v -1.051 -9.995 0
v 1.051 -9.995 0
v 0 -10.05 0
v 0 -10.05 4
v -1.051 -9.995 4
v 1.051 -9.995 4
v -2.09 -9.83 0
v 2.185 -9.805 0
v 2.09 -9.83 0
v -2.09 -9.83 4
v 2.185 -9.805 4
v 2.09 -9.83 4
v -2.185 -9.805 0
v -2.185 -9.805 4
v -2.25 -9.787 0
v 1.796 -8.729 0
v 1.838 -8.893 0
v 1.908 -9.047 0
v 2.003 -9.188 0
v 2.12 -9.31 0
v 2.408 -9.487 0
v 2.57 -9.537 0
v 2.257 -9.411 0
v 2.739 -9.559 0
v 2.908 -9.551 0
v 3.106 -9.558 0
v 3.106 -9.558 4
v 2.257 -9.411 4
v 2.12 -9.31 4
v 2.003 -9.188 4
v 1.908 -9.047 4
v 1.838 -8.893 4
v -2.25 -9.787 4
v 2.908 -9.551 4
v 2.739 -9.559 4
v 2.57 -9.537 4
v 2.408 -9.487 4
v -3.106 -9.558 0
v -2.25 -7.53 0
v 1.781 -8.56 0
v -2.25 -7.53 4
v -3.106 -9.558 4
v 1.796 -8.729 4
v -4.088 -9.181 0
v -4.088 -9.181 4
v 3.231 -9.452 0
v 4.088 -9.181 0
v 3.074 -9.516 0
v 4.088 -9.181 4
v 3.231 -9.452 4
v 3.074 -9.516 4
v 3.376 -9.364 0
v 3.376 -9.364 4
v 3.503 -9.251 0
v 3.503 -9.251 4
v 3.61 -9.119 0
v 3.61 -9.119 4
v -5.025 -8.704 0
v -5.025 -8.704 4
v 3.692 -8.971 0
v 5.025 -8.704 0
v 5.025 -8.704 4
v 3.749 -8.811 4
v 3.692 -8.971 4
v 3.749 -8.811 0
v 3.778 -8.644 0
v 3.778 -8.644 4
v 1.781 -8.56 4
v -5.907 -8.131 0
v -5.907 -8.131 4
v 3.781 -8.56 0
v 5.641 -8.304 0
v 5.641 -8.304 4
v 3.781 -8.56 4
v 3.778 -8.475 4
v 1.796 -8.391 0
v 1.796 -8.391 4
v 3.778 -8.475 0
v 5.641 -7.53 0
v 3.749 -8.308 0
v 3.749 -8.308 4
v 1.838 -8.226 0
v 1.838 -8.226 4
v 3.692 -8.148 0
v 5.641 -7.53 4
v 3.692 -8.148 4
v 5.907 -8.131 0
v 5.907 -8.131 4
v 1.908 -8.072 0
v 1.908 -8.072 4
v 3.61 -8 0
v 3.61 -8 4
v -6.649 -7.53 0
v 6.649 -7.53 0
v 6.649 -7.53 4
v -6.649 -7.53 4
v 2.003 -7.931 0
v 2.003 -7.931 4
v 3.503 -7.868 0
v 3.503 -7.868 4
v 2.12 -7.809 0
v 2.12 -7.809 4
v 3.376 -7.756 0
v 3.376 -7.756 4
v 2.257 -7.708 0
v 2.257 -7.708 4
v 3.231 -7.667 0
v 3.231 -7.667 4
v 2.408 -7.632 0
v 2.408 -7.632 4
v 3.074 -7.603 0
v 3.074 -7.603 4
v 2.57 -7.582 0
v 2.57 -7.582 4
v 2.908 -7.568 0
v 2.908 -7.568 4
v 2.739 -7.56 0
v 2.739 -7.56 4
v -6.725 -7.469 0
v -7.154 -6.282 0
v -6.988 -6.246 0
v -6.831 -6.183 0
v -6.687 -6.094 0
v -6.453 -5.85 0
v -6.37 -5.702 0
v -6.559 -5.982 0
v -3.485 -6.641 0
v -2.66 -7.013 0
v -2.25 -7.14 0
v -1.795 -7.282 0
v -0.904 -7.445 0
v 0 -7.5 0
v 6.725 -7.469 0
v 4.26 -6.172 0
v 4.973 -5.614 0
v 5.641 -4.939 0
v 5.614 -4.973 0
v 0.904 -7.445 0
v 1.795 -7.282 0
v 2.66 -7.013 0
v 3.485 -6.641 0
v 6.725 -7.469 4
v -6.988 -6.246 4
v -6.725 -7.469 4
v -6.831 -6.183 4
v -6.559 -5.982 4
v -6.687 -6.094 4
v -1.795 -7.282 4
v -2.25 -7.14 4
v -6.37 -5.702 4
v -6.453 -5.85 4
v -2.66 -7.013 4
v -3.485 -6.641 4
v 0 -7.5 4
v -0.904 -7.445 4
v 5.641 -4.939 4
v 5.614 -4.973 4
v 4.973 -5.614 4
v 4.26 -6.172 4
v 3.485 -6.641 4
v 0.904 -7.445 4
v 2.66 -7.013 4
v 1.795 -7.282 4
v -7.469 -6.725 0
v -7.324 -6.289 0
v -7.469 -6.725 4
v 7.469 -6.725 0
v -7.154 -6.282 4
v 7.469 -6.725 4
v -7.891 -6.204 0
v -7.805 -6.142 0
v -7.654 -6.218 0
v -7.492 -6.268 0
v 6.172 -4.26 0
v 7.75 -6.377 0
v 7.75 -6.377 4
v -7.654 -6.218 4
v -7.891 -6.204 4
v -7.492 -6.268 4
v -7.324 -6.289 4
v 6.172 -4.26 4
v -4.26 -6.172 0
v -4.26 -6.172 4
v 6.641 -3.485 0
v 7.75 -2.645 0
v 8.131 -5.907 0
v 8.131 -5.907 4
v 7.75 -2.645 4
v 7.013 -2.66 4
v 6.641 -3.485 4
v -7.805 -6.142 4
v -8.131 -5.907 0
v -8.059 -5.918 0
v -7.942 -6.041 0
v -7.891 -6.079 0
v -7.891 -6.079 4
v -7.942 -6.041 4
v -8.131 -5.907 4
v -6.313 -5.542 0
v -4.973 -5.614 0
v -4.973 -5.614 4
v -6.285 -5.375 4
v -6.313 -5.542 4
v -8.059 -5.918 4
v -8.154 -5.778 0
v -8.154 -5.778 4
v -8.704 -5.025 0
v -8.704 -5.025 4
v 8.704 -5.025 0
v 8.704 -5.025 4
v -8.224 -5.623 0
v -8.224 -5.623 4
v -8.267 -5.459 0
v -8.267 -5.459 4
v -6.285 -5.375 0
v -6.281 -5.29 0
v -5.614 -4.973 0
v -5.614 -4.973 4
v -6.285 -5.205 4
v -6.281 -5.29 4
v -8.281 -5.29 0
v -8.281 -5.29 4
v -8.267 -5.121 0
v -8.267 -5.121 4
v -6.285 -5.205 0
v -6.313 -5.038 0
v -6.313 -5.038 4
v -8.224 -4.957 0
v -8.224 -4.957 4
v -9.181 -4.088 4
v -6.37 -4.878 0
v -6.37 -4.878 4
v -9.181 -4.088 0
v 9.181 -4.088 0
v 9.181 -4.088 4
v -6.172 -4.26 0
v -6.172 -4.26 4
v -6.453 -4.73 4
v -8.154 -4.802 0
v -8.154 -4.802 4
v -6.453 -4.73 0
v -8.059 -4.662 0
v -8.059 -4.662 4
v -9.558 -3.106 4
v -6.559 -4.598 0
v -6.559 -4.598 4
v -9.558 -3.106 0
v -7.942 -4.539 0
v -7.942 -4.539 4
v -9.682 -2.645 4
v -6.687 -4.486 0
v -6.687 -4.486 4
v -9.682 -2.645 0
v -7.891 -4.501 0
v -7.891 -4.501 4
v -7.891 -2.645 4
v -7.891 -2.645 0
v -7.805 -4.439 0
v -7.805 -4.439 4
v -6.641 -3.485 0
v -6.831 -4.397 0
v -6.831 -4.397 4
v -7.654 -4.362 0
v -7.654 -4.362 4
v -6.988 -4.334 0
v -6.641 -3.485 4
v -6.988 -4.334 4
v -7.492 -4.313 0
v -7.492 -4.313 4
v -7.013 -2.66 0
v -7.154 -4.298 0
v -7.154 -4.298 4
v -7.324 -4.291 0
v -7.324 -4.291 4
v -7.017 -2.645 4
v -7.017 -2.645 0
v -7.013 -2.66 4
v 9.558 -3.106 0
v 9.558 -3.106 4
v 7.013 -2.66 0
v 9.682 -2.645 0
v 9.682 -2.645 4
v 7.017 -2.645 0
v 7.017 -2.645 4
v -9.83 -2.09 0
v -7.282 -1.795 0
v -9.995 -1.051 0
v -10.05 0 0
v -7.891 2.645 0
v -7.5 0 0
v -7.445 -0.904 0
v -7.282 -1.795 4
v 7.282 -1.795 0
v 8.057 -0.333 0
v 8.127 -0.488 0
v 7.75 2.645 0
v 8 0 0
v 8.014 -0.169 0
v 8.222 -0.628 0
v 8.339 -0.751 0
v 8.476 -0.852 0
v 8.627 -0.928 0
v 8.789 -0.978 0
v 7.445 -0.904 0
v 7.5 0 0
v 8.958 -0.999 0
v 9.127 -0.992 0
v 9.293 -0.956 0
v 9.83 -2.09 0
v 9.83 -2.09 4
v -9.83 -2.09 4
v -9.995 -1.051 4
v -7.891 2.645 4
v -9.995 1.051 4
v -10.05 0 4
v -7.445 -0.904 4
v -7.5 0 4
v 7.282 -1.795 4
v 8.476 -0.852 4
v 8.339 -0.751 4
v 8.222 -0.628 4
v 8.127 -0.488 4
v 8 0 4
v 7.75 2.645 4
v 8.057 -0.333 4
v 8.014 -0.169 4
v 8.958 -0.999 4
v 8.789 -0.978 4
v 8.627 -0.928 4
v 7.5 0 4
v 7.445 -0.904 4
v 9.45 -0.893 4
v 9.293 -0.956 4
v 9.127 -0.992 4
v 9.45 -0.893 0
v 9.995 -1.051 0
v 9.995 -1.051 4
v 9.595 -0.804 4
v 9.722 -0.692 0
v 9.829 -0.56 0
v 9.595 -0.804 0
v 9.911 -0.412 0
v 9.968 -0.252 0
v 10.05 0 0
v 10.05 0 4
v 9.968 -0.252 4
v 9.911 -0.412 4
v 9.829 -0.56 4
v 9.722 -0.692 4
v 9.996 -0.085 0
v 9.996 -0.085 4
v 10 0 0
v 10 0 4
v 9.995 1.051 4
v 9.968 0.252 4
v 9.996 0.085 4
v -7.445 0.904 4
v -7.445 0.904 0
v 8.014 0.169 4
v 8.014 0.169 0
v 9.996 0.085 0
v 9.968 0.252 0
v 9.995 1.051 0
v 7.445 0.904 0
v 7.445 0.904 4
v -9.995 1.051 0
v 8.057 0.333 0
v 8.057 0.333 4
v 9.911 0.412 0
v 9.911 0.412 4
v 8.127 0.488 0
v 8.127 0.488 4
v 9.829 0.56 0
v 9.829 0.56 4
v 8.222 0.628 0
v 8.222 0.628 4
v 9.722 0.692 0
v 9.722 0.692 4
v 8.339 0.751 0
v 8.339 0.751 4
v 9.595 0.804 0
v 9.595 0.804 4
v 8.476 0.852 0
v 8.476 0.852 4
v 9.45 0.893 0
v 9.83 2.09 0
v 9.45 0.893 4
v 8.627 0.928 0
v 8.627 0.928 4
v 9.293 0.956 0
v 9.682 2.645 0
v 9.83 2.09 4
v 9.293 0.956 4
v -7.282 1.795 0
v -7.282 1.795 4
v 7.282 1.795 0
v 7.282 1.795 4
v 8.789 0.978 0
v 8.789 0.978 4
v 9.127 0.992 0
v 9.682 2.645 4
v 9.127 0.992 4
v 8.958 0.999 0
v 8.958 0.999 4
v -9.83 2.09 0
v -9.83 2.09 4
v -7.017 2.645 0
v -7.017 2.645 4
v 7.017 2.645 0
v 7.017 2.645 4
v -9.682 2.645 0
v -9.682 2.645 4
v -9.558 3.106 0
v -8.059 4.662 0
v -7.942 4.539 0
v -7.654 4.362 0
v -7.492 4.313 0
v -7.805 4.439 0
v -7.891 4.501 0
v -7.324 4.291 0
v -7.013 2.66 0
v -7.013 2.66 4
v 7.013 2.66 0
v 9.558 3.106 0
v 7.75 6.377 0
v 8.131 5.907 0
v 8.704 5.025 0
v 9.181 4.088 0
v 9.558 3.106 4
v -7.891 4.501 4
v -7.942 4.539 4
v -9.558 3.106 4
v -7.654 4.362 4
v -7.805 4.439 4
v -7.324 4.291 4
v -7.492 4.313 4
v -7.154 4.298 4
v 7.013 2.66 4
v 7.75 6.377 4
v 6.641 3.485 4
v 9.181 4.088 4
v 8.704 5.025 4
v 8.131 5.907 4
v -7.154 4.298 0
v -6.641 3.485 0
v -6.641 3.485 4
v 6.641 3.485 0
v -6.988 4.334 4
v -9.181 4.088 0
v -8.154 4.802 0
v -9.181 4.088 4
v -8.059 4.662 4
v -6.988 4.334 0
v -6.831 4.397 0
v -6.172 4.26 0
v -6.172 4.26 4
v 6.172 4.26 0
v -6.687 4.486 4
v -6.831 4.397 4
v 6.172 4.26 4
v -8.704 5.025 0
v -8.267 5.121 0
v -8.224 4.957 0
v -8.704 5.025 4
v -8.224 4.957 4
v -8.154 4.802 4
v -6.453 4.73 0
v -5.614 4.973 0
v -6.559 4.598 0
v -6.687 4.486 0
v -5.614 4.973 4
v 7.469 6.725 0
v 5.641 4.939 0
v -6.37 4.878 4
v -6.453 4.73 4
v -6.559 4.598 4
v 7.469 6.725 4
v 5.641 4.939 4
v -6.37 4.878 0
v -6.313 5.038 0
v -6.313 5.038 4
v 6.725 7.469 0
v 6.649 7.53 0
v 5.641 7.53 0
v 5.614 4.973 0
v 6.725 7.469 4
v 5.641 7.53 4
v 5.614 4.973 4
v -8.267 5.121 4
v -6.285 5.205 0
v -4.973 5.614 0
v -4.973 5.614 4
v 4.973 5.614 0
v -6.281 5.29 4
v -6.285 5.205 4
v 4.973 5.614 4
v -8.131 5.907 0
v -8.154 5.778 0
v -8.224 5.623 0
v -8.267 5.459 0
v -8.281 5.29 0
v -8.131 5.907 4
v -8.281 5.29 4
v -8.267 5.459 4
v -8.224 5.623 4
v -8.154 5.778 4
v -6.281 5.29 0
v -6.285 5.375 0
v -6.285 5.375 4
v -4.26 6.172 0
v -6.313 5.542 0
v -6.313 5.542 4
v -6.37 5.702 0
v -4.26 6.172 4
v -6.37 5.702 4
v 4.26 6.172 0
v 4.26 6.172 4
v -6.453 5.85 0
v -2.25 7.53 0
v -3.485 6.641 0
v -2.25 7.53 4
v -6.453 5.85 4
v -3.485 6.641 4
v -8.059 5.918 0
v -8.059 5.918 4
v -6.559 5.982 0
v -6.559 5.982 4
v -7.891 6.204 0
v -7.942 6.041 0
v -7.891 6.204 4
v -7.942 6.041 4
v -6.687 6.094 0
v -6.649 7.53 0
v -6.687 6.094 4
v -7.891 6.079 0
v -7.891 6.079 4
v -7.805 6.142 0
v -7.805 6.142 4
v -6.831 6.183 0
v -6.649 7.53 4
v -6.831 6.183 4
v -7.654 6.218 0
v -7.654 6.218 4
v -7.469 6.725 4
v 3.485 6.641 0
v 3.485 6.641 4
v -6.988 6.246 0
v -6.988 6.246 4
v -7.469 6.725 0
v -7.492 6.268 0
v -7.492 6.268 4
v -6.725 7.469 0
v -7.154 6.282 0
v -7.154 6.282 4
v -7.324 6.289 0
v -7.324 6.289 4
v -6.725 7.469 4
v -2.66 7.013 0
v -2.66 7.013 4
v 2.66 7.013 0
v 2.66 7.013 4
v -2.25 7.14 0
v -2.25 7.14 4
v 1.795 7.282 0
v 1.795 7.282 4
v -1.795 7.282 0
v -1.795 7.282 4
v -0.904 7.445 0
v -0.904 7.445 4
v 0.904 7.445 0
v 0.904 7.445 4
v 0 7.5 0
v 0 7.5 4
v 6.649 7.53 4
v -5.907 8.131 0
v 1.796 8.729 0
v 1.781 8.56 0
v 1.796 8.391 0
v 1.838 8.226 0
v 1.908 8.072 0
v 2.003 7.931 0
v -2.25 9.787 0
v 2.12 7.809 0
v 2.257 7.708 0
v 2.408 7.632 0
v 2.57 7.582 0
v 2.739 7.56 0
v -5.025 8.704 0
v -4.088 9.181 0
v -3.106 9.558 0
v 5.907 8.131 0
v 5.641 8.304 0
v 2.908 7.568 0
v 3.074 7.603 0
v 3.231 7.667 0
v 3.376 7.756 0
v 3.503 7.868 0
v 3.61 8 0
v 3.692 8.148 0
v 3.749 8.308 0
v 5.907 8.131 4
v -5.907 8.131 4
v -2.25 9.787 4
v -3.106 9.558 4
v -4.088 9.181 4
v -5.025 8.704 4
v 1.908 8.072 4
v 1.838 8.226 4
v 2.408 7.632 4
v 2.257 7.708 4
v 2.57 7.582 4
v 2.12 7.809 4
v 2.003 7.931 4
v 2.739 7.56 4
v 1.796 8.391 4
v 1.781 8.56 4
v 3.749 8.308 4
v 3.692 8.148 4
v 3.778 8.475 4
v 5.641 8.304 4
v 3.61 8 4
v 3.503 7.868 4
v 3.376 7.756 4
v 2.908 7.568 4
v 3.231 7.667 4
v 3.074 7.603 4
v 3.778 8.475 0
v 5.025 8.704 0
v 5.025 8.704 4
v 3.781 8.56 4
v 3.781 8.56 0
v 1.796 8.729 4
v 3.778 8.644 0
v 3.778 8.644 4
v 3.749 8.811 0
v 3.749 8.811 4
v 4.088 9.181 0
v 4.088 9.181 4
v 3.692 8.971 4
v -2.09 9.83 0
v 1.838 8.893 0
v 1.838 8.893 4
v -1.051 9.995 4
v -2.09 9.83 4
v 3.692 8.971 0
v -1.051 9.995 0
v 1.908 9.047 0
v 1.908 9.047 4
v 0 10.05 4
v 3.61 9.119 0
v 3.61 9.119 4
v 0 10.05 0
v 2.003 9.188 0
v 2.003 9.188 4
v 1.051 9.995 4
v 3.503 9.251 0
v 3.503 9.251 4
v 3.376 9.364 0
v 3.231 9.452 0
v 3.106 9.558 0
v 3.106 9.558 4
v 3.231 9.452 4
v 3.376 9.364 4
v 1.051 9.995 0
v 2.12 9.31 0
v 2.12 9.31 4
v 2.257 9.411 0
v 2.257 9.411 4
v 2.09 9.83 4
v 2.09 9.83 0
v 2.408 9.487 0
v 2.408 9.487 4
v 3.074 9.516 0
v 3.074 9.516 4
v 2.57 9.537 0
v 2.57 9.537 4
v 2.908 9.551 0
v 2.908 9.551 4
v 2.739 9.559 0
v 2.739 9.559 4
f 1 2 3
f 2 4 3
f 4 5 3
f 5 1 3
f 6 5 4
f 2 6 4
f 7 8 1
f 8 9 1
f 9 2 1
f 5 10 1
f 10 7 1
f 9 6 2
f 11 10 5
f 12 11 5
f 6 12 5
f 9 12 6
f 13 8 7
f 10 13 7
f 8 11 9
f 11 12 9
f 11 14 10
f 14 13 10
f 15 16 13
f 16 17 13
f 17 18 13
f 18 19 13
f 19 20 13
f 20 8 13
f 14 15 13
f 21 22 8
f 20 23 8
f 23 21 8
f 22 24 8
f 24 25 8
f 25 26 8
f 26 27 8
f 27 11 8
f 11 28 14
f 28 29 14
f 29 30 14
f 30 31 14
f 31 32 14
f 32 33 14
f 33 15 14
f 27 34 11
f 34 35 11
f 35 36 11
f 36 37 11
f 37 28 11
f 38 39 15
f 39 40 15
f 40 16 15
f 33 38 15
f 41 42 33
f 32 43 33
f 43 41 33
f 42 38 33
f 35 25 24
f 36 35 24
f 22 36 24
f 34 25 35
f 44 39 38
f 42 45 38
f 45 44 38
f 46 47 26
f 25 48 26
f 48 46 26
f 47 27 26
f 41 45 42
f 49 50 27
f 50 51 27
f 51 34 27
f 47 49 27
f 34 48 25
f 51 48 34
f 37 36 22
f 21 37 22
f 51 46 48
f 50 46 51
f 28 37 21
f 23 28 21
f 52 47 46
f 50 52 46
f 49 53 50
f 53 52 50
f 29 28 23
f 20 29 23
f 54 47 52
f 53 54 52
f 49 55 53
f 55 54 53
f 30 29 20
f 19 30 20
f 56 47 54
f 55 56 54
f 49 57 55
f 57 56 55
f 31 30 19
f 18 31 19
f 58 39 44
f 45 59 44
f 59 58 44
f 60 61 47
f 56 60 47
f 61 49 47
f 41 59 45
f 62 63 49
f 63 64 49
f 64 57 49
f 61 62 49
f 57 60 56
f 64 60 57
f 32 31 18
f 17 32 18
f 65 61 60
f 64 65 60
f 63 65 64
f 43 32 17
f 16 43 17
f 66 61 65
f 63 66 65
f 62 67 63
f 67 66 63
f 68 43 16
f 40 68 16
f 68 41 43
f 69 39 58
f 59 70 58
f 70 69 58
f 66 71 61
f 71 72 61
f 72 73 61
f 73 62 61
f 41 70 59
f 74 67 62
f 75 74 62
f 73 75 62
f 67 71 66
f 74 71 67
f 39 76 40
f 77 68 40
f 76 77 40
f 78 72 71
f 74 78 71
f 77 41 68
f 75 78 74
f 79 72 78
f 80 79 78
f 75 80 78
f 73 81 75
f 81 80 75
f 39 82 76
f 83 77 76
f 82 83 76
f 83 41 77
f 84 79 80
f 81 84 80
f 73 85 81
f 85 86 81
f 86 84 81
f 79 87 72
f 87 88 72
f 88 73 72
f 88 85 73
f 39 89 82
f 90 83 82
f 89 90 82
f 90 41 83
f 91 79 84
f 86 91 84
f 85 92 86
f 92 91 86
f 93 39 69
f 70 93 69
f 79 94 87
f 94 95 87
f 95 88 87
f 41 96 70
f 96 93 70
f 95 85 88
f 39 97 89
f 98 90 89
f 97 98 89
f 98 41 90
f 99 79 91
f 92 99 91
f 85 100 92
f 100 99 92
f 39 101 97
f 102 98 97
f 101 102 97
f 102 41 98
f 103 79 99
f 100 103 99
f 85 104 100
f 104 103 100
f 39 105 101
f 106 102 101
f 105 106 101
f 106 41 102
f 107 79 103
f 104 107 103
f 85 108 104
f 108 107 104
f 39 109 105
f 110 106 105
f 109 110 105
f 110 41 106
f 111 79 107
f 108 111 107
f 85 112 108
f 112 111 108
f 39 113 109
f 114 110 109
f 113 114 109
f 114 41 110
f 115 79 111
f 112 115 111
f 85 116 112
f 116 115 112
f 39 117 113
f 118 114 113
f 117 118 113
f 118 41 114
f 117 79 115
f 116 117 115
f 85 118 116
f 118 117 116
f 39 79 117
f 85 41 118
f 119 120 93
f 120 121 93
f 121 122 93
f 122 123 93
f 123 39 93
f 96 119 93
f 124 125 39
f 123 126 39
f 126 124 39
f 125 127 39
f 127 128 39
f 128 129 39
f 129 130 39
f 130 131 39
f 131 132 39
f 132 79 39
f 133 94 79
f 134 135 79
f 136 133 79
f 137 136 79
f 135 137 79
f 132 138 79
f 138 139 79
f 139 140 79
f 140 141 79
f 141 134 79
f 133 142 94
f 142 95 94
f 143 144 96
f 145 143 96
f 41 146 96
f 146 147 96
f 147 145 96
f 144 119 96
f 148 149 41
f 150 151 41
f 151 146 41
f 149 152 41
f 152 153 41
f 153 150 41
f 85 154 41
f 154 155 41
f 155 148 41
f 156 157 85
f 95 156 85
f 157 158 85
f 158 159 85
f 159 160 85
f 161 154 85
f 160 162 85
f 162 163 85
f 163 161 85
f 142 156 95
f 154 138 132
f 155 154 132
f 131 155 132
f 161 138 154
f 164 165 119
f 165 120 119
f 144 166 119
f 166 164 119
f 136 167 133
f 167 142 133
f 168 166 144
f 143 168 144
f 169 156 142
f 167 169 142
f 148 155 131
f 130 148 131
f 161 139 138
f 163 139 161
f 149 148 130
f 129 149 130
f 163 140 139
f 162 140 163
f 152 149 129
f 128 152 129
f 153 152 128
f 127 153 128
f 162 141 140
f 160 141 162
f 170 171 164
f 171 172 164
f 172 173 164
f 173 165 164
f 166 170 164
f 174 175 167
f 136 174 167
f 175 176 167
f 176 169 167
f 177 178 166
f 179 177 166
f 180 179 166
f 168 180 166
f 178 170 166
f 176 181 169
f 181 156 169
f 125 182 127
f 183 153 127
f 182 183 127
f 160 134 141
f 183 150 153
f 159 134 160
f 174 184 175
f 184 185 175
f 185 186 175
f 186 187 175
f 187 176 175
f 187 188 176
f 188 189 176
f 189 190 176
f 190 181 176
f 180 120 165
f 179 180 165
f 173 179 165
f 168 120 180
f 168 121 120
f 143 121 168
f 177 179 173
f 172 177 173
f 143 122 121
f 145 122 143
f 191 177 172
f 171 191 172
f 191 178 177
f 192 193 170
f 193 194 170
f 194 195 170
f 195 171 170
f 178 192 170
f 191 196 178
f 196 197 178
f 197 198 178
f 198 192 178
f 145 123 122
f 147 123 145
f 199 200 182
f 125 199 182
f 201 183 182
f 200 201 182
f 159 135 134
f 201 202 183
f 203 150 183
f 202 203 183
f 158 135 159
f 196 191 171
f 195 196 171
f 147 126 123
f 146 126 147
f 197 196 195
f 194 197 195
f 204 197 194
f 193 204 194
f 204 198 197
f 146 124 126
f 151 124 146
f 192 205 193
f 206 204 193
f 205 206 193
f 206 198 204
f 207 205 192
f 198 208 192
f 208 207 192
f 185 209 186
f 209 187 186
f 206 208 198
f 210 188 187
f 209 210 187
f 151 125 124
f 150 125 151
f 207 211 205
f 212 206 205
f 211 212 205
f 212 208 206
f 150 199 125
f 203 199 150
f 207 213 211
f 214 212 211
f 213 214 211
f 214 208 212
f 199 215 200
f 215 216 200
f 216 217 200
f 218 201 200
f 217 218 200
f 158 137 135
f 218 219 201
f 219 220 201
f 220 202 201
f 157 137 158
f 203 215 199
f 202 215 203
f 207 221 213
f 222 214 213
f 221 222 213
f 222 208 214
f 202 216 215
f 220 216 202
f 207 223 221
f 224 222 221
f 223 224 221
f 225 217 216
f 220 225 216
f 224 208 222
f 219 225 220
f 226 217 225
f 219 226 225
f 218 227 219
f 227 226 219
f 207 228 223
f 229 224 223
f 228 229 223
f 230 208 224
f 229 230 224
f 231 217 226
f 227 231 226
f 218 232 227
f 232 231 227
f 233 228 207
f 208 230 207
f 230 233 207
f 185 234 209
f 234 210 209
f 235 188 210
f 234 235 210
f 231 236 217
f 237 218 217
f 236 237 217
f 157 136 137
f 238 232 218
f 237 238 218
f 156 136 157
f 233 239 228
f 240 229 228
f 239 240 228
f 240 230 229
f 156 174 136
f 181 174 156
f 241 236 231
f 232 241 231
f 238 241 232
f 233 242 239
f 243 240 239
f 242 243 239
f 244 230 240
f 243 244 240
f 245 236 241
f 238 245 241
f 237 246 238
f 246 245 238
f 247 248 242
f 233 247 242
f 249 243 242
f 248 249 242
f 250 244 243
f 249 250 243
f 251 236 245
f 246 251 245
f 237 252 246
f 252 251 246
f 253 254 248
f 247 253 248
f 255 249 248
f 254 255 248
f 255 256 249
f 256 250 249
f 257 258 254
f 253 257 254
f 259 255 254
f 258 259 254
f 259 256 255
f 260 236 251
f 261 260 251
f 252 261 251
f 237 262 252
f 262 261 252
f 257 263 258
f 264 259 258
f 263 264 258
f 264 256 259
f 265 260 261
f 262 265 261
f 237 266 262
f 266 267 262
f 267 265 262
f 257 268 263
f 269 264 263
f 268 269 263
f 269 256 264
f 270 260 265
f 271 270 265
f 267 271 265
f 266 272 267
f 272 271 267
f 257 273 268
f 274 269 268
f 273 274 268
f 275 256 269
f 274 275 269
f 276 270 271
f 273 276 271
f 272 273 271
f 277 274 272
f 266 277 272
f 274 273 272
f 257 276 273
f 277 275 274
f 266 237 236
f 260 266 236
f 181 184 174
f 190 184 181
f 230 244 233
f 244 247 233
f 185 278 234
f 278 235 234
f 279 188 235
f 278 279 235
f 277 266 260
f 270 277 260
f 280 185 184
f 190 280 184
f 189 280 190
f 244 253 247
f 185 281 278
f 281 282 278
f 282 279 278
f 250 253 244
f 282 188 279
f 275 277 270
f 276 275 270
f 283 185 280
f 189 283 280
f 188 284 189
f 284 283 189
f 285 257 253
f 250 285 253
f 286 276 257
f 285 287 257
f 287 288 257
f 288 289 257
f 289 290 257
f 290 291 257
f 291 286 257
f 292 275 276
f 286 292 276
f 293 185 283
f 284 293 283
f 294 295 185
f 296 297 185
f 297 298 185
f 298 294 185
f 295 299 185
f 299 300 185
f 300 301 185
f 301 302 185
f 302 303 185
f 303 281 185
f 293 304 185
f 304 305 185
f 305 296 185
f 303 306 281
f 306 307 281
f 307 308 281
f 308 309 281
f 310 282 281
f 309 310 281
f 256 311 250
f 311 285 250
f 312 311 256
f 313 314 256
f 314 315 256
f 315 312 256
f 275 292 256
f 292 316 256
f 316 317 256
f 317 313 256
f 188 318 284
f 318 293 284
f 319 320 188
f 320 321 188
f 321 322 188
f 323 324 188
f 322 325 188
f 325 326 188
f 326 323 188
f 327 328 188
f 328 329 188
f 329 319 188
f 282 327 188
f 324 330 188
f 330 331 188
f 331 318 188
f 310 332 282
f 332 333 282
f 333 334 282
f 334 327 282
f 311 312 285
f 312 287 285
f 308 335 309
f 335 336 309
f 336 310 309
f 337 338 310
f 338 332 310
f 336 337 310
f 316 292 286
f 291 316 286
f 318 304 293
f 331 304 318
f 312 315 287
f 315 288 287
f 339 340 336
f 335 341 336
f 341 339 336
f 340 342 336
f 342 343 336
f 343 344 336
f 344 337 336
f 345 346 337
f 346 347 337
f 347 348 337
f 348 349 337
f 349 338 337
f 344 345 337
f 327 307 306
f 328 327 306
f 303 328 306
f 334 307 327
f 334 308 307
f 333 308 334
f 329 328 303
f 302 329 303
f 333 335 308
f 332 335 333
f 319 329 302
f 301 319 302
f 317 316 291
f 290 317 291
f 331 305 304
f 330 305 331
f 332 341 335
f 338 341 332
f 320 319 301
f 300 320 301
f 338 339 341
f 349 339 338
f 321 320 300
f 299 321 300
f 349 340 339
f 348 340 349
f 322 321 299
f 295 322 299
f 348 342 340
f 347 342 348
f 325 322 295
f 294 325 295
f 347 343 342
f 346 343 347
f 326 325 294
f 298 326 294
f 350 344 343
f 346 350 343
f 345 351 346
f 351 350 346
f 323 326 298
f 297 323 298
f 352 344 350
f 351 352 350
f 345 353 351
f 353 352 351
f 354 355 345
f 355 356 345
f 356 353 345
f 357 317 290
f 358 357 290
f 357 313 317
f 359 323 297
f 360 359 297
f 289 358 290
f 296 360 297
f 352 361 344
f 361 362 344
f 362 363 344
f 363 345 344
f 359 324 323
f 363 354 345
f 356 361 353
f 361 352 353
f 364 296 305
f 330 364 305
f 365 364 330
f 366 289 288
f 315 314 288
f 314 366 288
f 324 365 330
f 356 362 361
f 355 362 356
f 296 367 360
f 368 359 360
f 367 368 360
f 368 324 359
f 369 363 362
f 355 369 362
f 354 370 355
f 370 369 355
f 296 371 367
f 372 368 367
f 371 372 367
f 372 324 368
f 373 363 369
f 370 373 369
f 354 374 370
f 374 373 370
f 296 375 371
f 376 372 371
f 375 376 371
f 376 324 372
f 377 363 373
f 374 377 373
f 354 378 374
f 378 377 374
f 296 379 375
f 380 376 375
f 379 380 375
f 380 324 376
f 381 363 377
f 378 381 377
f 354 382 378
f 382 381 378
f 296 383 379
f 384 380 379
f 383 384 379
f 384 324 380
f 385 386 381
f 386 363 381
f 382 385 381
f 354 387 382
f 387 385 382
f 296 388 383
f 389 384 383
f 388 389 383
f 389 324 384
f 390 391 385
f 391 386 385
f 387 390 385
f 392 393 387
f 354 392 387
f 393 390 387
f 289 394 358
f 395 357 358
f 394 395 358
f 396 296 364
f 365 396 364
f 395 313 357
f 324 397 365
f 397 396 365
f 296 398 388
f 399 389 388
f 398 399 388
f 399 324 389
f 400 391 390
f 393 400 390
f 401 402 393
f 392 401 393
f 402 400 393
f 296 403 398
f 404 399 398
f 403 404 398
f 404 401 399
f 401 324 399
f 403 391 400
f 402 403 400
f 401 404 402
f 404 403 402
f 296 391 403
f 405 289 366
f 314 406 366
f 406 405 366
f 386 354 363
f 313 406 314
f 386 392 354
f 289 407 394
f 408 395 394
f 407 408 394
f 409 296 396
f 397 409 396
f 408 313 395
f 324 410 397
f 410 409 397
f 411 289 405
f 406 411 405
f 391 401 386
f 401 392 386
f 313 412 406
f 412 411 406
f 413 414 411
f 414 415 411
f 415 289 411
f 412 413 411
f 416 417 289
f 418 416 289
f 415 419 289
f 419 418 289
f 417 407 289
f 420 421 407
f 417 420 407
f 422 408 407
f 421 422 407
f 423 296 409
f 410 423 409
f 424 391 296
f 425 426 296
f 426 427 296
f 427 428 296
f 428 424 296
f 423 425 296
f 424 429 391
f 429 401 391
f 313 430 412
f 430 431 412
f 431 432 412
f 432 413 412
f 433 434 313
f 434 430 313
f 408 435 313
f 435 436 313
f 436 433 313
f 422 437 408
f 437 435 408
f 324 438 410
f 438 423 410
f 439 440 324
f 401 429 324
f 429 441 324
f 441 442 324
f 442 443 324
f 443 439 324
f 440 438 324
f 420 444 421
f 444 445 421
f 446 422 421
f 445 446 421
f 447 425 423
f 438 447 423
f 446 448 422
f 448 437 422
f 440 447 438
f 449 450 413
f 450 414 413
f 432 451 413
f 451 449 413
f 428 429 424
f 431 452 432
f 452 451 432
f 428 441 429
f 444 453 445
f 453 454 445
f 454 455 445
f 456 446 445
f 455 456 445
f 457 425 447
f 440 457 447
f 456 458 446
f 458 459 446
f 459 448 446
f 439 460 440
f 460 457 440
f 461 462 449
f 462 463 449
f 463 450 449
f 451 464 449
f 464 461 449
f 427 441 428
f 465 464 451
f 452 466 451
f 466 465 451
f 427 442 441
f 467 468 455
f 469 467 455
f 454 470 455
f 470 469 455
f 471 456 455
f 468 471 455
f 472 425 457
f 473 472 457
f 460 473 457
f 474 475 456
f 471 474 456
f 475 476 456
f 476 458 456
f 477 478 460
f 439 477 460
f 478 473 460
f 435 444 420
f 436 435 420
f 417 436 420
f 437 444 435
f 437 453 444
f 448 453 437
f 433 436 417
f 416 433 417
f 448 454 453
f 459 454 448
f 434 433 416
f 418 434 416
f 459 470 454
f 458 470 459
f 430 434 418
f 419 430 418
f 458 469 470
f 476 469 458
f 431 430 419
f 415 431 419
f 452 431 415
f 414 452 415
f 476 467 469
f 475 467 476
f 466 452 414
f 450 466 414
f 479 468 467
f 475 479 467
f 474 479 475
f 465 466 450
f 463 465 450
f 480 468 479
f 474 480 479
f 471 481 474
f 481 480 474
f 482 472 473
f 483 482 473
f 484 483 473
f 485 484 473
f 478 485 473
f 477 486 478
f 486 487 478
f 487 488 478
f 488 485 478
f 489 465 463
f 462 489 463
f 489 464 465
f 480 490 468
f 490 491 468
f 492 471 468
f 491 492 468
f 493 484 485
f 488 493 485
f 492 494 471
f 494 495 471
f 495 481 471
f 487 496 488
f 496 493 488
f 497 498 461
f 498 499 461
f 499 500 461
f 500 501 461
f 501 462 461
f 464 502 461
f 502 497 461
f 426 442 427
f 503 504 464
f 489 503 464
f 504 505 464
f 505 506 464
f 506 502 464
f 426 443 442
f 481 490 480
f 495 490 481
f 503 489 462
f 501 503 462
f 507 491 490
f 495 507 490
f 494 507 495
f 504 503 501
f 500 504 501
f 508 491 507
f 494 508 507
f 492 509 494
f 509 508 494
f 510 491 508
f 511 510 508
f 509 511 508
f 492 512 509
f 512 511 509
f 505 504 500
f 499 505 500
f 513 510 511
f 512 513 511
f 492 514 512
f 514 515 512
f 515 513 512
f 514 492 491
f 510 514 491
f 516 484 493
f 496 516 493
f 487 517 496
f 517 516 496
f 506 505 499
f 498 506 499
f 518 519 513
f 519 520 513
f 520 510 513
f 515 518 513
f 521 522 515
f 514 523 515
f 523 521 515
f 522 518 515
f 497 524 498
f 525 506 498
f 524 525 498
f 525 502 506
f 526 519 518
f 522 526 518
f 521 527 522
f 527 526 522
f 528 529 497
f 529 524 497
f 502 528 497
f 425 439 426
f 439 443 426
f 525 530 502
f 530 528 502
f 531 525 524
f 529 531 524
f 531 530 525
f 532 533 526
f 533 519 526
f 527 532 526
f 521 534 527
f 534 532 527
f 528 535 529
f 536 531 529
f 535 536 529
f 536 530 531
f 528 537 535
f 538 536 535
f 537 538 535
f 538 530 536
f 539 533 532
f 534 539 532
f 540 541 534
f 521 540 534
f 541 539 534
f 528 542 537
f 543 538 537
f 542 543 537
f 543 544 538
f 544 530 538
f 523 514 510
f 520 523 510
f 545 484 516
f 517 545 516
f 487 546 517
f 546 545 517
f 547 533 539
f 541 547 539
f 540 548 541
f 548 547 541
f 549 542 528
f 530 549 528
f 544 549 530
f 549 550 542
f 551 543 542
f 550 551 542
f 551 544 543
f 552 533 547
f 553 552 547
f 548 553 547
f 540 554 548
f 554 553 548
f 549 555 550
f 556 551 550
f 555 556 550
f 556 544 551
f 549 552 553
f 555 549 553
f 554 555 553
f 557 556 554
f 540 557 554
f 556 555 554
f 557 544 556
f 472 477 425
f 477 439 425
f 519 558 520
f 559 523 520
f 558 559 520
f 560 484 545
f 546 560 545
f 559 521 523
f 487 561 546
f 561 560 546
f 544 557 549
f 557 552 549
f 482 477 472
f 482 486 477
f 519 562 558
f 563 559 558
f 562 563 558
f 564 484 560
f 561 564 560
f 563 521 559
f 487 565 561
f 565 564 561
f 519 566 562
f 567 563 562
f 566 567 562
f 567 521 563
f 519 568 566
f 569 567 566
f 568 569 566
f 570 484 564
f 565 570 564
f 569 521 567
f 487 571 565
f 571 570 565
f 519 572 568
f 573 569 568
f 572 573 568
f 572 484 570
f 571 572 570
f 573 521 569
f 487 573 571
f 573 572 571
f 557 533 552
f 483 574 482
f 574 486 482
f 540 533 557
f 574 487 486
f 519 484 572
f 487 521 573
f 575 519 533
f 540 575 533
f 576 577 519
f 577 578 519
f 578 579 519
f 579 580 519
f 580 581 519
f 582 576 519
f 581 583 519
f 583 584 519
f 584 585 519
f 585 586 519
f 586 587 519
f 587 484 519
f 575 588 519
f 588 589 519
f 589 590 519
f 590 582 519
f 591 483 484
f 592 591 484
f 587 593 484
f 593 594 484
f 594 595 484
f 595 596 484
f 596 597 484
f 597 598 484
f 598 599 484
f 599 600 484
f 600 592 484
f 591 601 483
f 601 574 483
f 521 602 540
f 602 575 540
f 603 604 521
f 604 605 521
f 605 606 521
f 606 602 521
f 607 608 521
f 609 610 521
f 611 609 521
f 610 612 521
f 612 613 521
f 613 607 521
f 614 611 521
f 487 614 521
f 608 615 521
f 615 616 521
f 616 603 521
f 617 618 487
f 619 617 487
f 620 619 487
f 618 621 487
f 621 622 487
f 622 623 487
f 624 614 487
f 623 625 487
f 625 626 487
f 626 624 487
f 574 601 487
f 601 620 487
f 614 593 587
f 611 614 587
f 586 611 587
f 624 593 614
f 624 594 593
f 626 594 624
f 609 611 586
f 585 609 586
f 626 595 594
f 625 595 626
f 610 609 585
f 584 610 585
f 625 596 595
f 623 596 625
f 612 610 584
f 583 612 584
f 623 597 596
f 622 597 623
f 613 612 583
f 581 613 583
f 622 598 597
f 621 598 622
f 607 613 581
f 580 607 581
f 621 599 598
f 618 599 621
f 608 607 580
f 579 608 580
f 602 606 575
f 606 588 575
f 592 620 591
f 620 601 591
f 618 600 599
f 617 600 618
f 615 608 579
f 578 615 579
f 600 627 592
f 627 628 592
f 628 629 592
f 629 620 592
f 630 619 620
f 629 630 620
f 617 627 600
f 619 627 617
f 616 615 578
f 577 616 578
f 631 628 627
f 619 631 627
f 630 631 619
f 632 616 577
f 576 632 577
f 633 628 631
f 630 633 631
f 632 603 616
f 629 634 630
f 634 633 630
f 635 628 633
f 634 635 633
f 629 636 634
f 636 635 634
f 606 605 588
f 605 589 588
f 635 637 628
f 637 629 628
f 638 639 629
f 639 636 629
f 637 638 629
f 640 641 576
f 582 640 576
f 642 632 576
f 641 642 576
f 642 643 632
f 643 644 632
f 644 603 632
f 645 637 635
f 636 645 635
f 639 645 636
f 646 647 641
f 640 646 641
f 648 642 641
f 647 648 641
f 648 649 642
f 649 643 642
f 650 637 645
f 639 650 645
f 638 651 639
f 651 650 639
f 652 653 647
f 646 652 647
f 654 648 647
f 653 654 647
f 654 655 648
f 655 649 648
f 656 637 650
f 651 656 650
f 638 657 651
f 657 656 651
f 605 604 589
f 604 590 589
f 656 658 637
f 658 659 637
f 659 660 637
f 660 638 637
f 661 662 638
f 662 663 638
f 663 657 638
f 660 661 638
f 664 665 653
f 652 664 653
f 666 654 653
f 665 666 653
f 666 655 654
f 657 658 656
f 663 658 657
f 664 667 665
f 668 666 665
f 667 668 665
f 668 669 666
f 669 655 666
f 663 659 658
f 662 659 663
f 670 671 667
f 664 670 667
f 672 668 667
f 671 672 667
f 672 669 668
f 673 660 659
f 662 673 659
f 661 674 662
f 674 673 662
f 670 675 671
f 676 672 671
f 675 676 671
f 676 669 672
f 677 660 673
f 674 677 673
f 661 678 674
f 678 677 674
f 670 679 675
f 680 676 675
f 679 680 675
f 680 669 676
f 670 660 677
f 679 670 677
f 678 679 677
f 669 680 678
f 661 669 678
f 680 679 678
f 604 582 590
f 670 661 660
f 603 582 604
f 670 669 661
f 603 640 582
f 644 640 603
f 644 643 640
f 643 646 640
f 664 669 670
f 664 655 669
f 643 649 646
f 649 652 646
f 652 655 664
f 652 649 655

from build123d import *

# Parameters (mm, degrees)
SKETCH_1_R          = 12
SKETCH_1_R_2        = 1
EXTRUDE_1_DEPTH     = 2
SKETCH_3_R          = 1
EXTRUDE_2_DEPTH     = 12
SKETCH_4_R          = 7
CUT_EXTRUDE_1_DEPTH = 12
SKETCH_6_R          = 12
SKETCH_6_R_2        = 11.5
CUT_EXTRUDE_2_DEPTH = 4
SKETCH_8_R          = 11.5
SKETCH_8_R_2        = 7
EXTRUDE_4_DEPTH     = 2
SKETCH_9_R          = 7.5
CUT_EXTRUDE_3_DEPTH = 4
SKETCH_12_R         = 1
CUT_EXTRUDE_4_DEPTH = 20
SKETCH_13_R         = 11.5
SKETCH_13_R_2       = 10.05
CUT_EXTRUDE_5_DEPTH = 10


with BuildPart() as part:
    # 草图1 → 凸台-拉伸1 (new body)
    with BuildSketch(Plane.XY):
        Circle(SKETCH_1_R)
        with Locations((9, 0)):
            Circle(SKETCH_1_R_2, mode=Mode.SUBTRACT)
        with Locations((2.781152949, -8.559508647)):
            Circle(SKETCH_1_R_2, mode=Mode.SUBTRACT)
        with Locations((-7.281152949, -5.290067271)):
            Circle(SKETCH_1_R_2, mode=Mode.SUBTRACT)
        with Locations((-7.281152949, 5.290067271)):
            Circle(SKETCH_1_R_2, mode=Mode.SUBTRACT)
        with Locations((2.781152949, 8.559508647)):
            Circle(SKETCH_1_R_2, mode=Mode.SUBTRACT)
    extrude(amount=EXTRUDE_1_DEPTH)

    # 草图3 → 凸台-拉伸2 (add)
    with BuildSketch(Plane.XY.offset(2)):
        with Locations((9, 0)):
            Circle(SKETCH_3_R)
        with Locations((2.781152949, -8.559508647)):
            Circle(SKETCH_3_R)
        with Locations((-7.281152949, -5.290067271)):
            Circle(SKETCH_3_R)
        with Locations((-7.281152949, 5.290067271)):
            Circle(SKETCH_3_R)
        with Locations((2.781152949, 8.559508647)):
            Circle(SKETCH_3_R)
    extrude(amount=-EXTRUDE_2_DEPTH)

    # 草图4 → 切除-拉伸1 (cut)
    with BuildSketch(Plane(origin=(0, 0, 0), x_dir=(-1, 0, 0), z_dir=(0, 0, -1))):
        Circle(SKETCH_4_R)
    extrude(amount=-CUT_EXTRUDE_1_DEPTH, mode=Mode.SUBTRACT)

    # 草图6 → 切除-拉伸2 (cut)
    with BuildSketch(Plane(origin=(0, 0, 0), x_dir=(-1, 0, 0), z_dir=(0, 0, -1))):
        Circle(SKETCH_6_R)
        Circle(SKETCH_6_R_2, mode=Mode.SUBTRACT)
    extrude(amount=-CUT_EXTRUDE_2_DEPTH, mode=Mode.SUBTRACT)

    # 草图8 → 凸台-拉伸4 (add)
    with BuildSketch(Plane.XY.offset(2)):
        Circle(SKETCH_8_R)
        Circle(SKETCH_8_R_2, mode=Mode.SUBTRACT)
    extrude(amount=EXTRUDE_4_DEPTH)

    # 草图9 → 切除-拉伸3 (cut)
    with BuildSketch(Plane(origin=(0, 0, 0), x_dir=(-1, 0, 0), z_dir=(0, 0, -1))):
        Circle(SKETCH_9_R)
    extrude(amount=-CUT_EXTRUDE_3_DEPTH, mode=Mode.SUBTRACT)

    # 草图12 → 切除-拉伸4 (cut)
    with BuildSketch(Plane(origin=(0, 0, -10), x_dir=(-1, 0, 0), z_dir=(0, 0, -1))):
        with Locations((-2.781152949, -8.559508647)):
            Circle(SKETCH_12_R)
        with Locations((7.281152949, 5.290067271)):
            Circle(SKETCH_12_R)
        with Locations((-2.781152949, 8.559508647)):
            Circle(SKETCH_12_R)
        with Locations((-9, 0)):
            Circle(SKETCH_12_R)
        with Locations((7.281152949, -5.290067271)):
            Circle(SKETCH_12_R)
    extrude(amount=-CUT_EXTRUDE_4_DEPTH, mode=Mode.SUBTRACT)

    # 草图13 → 切除-拉伸5 (cut)
    with BuildSketch(Plane.XY.offset(4)):
        Circle(SKETCH_13_R)
        Circle(SKETCH_13_R_2, mode=Mode.SUBTRACT)
    extrude(amount=-CUT_EXTRUDE_5_DEPTH, mode=Mode.SUBTRACT)


solid = part.part
